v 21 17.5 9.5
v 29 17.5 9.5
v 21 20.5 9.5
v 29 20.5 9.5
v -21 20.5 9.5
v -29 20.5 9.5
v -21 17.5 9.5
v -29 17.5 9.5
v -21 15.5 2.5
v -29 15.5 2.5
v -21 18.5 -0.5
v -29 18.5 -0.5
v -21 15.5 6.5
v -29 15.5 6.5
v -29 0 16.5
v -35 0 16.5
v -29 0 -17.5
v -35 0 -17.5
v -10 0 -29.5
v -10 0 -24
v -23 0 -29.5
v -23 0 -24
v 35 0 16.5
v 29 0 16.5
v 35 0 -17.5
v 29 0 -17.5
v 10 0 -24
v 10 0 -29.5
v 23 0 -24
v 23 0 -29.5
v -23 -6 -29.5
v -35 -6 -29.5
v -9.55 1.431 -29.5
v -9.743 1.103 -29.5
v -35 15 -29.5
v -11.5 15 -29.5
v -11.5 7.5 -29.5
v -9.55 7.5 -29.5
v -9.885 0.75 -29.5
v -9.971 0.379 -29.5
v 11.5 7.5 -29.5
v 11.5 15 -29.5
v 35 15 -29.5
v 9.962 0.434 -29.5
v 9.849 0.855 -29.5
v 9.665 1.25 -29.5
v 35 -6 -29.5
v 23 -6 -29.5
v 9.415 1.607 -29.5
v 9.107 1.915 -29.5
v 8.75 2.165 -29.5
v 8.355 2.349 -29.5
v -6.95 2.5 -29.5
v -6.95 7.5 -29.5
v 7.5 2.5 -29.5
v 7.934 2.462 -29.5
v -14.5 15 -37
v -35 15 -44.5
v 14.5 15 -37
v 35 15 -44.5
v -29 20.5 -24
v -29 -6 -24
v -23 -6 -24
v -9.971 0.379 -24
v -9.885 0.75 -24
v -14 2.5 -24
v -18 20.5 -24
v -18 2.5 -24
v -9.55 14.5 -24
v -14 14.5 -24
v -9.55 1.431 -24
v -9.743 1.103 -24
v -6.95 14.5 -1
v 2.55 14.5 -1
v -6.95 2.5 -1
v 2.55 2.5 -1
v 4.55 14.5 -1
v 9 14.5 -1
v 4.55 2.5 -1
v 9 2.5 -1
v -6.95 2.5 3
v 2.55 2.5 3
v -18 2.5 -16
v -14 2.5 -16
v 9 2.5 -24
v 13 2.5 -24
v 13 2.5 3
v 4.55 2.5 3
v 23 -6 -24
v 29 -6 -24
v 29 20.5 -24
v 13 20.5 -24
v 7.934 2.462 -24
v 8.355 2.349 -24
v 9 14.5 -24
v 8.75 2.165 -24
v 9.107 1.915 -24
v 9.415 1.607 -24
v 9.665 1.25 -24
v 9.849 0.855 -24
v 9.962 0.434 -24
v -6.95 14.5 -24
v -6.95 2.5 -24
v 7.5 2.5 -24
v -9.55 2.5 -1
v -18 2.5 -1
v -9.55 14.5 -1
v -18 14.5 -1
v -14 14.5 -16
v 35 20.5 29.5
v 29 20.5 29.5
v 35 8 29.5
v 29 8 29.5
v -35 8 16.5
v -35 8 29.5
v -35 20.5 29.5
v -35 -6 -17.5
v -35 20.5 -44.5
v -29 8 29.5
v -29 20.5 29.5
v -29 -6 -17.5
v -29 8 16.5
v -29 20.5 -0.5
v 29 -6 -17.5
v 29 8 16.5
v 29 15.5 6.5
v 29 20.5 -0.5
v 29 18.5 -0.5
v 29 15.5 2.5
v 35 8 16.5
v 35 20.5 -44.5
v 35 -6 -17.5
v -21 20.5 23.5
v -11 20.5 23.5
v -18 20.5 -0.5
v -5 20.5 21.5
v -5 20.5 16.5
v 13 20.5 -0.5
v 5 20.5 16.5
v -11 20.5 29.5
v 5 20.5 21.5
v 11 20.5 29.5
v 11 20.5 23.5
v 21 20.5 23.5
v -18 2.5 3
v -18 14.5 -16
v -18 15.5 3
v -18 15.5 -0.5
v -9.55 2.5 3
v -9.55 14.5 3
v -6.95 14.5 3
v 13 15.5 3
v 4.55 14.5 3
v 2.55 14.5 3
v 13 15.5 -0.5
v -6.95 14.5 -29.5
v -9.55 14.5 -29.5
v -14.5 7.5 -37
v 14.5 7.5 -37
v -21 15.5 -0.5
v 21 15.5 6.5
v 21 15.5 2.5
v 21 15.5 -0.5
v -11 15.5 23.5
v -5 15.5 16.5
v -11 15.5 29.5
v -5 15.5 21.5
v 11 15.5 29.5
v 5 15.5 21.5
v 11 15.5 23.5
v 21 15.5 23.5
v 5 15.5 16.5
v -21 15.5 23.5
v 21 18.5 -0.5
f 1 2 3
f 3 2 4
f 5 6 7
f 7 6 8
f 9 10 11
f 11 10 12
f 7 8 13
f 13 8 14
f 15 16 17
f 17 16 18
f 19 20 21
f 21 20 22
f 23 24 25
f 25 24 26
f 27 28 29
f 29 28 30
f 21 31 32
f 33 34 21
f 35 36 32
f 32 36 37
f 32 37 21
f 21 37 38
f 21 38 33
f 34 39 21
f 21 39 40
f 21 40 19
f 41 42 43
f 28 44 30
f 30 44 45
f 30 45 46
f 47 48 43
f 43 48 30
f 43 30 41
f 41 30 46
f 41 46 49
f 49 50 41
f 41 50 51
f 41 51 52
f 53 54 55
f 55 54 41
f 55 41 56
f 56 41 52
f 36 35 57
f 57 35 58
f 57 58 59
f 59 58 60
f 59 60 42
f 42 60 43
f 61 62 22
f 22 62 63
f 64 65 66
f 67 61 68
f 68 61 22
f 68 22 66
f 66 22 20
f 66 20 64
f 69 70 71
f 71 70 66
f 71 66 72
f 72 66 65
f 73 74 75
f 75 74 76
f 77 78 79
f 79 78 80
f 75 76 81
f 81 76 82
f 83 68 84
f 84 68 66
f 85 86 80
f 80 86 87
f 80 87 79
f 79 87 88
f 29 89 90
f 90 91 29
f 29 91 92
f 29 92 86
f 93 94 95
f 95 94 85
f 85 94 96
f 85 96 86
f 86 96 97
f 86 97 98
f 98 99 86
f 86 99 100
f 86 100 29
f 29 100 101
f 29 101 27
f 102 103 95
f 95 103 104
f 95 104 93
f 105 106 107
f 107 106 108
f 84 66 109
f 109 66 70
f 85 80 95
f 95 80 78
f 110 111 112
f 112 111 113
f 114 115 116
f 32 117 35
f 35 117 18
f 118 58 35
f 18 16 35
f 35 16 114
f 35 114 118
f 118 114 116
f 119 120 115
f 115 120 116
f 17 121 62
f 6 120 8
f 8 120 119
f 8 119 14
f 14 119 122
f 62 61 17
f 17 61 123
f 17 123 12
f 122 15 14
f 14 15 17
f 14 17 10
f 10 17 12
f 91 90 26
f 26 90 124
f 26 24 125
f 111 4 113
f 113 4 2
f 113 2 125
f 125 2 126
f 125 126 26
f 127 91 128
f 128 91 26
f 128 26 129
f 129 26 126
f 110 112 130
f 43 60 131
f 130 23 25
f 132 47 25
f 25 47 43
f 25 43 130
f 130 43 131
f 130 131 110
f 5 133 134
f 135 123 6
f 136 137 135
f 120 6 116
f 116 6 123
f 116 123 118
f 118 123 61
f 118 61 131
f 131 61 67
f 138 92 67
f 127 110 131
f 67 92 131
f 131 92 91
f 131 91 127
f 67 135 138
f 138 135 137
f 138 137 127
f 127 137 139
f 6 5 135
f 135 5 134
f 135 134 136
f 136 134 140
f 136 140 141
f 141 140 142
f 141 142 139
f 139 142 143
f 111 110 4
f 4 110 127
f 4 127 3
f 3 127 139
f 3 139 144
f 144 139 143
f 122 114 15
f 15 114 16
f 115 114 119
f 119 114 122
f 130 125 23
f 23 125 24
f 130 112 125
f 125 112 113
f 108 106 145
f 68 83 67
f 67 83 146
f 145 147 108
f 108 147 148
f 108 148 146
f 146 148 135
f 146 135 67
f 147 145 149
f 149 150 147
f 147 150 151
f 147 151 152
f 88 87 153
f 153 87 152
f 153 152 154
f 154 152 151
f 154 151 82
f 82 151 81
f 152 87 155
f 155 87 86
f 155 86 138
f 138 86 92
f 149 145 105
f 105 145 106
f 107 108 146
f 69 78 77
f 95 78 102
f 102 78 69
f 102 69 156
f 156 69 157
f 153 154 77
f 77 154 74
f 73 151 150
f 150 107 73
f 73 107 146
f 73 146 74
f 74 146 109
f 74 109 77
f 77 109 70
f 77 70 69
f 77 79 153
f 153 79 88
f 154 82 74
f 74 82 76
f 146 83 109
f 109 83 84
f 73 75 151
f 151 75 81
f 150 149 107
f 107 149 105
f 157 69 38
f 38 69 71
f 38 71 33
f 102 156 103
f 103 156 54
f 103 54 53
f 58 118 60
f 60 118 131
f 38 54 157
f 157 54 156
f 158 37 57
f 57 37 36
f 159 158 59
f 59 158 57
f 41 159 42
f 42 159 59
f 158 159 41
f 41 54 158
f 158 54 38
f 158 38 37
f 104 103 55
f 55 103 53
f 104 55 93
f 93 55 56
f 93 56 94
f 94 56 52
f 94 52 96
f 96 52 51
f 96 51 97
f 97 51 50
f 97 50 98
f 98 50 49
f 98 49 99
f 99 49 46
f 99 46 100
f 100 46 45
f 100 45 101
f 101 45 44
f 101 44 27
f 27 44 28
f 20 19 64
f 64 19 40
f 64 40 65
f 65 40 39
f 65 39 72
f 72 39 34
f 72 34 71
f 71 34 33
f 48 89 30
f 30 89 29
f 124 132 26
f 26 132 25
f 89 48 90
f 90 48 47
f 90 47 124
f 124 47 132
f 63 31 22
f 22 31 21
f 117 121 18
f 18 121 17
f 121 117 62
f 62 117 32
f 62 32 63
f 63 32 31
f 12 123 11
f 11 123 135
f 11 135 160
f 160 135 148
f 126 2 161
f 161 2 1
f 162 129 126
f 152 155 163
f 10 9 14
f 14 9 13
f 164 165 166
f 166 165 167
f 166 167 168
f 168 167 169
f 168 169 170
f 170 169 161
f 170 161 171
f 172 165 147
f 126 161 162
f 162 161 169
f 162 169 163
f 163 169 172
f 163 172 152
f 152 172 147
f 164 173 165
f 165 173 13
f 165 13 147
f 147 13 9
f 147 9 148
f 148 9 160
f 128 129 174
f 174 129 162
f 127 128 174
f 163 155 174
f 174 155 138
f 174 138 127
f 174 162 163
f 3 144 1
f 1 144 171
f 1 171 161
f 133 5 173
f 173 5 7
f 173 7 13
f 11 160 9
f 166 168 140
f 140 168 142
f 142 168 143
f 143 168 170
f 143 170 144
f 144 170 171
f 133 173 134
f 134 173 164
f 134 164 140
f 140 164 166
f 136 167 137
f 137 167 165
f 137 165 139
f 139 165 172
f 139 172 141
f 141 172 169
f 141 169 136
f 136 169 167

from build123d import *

# Parameters (mm, degrees)
BOSS_EXTRUDE1_DEPTH  = 20.5
SKETCH2_W            = 6
SKETCH2_H            = 13
CUT_EXTRUDE1_DEPTH   = 8
SKETCH3_W            = 23
SKETCH3_H            = 23
BOSS_EXTRUDE2_DEPTH  = 6
BOSS_EXTRUDE4_DEPTH  = 18
SKETCH5_W            = 2.6
SKETCH5_H            = 5.5
SKETCH5_H_2          = 4
SKETCH5_W_2          = 4
SKETCH5_H_3          = 15
SKETCH5_W_3          = 2
CUT_EXTRUDE2_DEPTH   = 14.5
SKETCH9_W            = 70
SKETCH9_H            = 5.5
BOSS_EXTRUDE6_DEPTH  = 15
BOSS_EXTRUDE7_DEPTH  = 7.5
CUT_EXTRUDE3_DEPTH   = 5.5
BOSS_EXTRUDE8_DEPTH  = 6
BOSS_EXTRUDE10_START = -6
BOSS_EXTRUDE10_DEPTH = 58
BOSS_EXTRUDE11_START = -14
SKETCH15_W           = 10
SKETCH15_H           = 5
BOSS_EXTRUDE11_DEPTH = 42
SKETCH16_W           = 42
SKETCH16_H           = 5
BOSS_EXTRUDE12_DEPTH = 20
CUT_EXTRUDE4_REACH   = 28.5
SKETCH17_W           = 10
SKETCH17_H           = 6
SKETCH17_H_2         = 5


with BuildPart() as part:
    # Sketch1 → Boss-Extrude1 (new body)
    with BuildSketch(Plane(origin=(0, 0, 0), x_dir=(1, 0, 0), z_dir=(0, 1, 0))):
        Polygon((29, -29.5), (35, -29.5), (35, 29.5), (-35, 29.5), (-35, -29.5), (-29, -29.5), (-29, 24), (29, 24), align=None)
    extrude(amount=BOSS_EXTRUDE1_DEPTH)

    # Sketch2 → Cut-Extrude1 (cut)
    with BuildSketch(Plane.XZ):
        with Locations((32, 23)):
            Rectangle(SKETCH2_W, SKETCH2_H)
        with Locations((-32, 23)):
            Rectangle(SKETCH2_W, SKETCH2_H)
    extrude(amount=-CUT_EXTRUDE1_DEPTH, mode=Mode.SUBTRACT)



with BuildPart() as body_2:
    # Sketch3 → Boss-Extrude2 (new body)
    with BuildSketch(Plane(origin=(0, 20.5, 0), x_dir=(1, 0, 0), z_dir=(0, 1, 0))):
        with Locations((-2.5, 12.5)):
            Rectangle(SKETCH3_W, SKETCH3_H)
    extrude(amount=-BOSS_EXTRUDE2_DEPTH)


with BuildPart() as part_1:
    add(part.part)

    add(body_2.part)  # Boss-Extrude4 merges body 2
    # Sketch4 → Boss-Extrude4 (add)
    with BuildSketch(Plane(origin=(0, 20.5, 0), x_dir=(1, 0, 0), z_dir=(0, 1, 0))):
        Polygon((-14, 24), (-18, 24), (-18, -3), (13, -3), (13, 24), (9, 24), (9, 1), (-14, 1), align=None)
    extrude(amount=-BOSS_EXTRUDE4_DEPTH)

    # Sketch5 → Cut-Extrude2 (cut)
    with BuildSketch(Plane.XZ):
        with Locations((-8.25, -26.75)):
            Rectangle(SKETCH5_W, SKETCH5_H)
        with Locations((-8.25, 1)):
            Rectangle(SKETCH5_W, SKETCH5_H_2)
        with Locations((-16, -8.5)):
            Rectangle(SKETCH5_W_2, SKETCH5_H_3)
        with Locations((3.55, 1)):
            Rectangle(SKETCH5_W_3, SKETCH5_H_2)
    extrude(amount=-CUT_EXTRUDE2_DEPTH, mode=Mode.SUBTRACT)

    # Sketch9 → Boss-Extrude6 (add)
    with BuildSketch(Plane(origin=(0, 0, -29.5), x_dir=(-1, 0, 0), z_dir=(0, 0, -1))):
        with Locations((0, 17.75)):
            Rectangle(SKETCH9_W, SKETCH9_H)
    extrude(amount=BOSS_EXTRUDE6_DEPTH)

    # Sketch10 → Boss-Extrude7 (add)
    with BuildSketch(Plane.XZ.offset(-15)):
        Polygon((11.5, -29.5), (-11.5, -29.5), (-14.5, -37), (14.5, -37), align=None)
    extrude(amount=BOSS_EXTRUDE7_DEPTH)

    # Sketch11 → Cut-Extrude3 (cut)
    with BuildSketch(Plane(origin=(0, 0, -29.5), x_dir=(-1, 0, 0), z_dir=(0, 0, -1))):
        with BuildLine():
            Line((-7.5, 2.5), (7.5, 2.5))
            ThreePointArc((7.5, 2.5), (10, 0), (7.5, -2.5))
            Line((7.5, -2.5), (-7.5, -2.5))
            ThreePointArc((-7.5, -2.5), (-10, 0), (-7.5, 2.5))
        make_face()
    extrude(amount=-CUT_EXTRUDE3_DEPTH, mode=Mode.SUBTRACT)

    # Sketch12 → Boss-Extrude8 (add)
    with BuildSketch(Plane.XZ):
        Polygon((35, -17.5), (29, -17.5), (29, -24), (23, -24), (23, -29.5), (35, -29.5), align=None)
        Polygon((-23, -24), (-23, -29.5), (-35, -29.5), (-35, -17.5), (-29, -17.5), (-29, -24), align=None)
    extrude(amount=BOSS_EXTRUDE8_DEPTH)

    # Sketch14 → Boss-Extrude10 (add)
    with BuildSketch(Plane(origin=(35, 0, 0), x_dir=(0, 0, -1), z_dir=(1, 0, 0)).offset(BOSS_EXTRUDE10_START)):
        Polygon((-9.5, 20.5), (0.5, 20.5), (0.5, 18.5), (-2.5, 15.5), (-6.5, 15.5), (-9.5, 17.5), align=None)
    extrude(amount=-BOSS_EXTRUDE10_DEPTH)

    # Sketch15 → Boss-Extrude11 (add)
    with BuildSketch(Plane(origin=(35, 0, 0), x_dir=(0, 0, -1), z_dir=(1, 0, 0)).offset(BOSS_EXTRUDE11_START)):
        with Locations((-4.5, 18)):
            Rectangle(SKETCH15_W, SKETCH15_H)
    extrude(amount=-BOSS_EXTRUDE11_DEPTH)

    # Sketch16 → Boss-Extrude12 (add)
    with BuildSketch(Plane.XY.offset(9.5)):
        with Locations((0, 18)):
            Rectangle(SKETCH16_W, SKETCH16_H)
    extrude(amount=BOSS_EXTRUDE12_DEPTH)

    # Sketch17 → Cut-Extrude4 (cut, up to next)
    with BuildSketch(Plane(origin=(0, 20.5, 0), x_dir=(1, 0, 0), z_dir=(0, 1, 0)), mode=Mode.PRIVATE) as cut_extrude4_sk1:
        with Locations((-16, -26.5)):
            Rectangle(SKETCH17_W, SKETCH17_H)
    cut_extrude4_tool1 = extrude(cut_extrude4_sk1.sketch, amount=-CUT_EXTRUDE4_REACH, mode=Mode.PRIVATE) & part_1.part
    add(cut_extrude4_tool1.solids().sort_by_distance((-16, 20.5, 26.5))[0], mode=Mode.SUBTRACT)
    # Sketch17 → Cut-Extrude4 (cut, up to next)
    with BuildSketch(Plane(origin=(0, 20.5, 0), x_dir=(1, 0, 0), z_dir=(0, 1, 0)), mode=Mode.PRIVATE) as cut_extrude4_sk2:
        with Locations((16, -26.5)):
            Rectangle(SKETCH17_W, SKETCH17_H)
    cut_extrude4_tool2 = extrude(cut_extrude4_sk2.sketch, amount=-CUT_EXTRUDE4_REACH, mode=Mode.PRIVATE) & part_1.part
    add(cut_extrude4_tool2.solids().sort_by_distance((16, 20.5, 26.5))[0], mode=Mode.SUBTRACT)
    # Sketch17 → Cut-Extrude4 (cut, up to next)
    with BuildSketch(Plane(origin=(0, 20.5, 0), x_dir=(1, 0, 0), z_dir=(0, 1, 0)), mode=Mode.PRIVATE) as cut_extrude4_sk3:
        with Locations((0, -19)):
            Rectangle(SKETCH17_W, SKETCH17_H_2)
    cut_extrude4_tool3 = extrude(cut_extrude4_sk3.sketch, amount=-CUT_EXTRUDE4_REACH, mode=Mode.PRIVATE) & part_1.part
    add(cut_extrude4_tool3.solids().sort_by_distance((0, 20.5, 19))[0], mode=Mode.SUBTRACT)


solid = part_1.part
